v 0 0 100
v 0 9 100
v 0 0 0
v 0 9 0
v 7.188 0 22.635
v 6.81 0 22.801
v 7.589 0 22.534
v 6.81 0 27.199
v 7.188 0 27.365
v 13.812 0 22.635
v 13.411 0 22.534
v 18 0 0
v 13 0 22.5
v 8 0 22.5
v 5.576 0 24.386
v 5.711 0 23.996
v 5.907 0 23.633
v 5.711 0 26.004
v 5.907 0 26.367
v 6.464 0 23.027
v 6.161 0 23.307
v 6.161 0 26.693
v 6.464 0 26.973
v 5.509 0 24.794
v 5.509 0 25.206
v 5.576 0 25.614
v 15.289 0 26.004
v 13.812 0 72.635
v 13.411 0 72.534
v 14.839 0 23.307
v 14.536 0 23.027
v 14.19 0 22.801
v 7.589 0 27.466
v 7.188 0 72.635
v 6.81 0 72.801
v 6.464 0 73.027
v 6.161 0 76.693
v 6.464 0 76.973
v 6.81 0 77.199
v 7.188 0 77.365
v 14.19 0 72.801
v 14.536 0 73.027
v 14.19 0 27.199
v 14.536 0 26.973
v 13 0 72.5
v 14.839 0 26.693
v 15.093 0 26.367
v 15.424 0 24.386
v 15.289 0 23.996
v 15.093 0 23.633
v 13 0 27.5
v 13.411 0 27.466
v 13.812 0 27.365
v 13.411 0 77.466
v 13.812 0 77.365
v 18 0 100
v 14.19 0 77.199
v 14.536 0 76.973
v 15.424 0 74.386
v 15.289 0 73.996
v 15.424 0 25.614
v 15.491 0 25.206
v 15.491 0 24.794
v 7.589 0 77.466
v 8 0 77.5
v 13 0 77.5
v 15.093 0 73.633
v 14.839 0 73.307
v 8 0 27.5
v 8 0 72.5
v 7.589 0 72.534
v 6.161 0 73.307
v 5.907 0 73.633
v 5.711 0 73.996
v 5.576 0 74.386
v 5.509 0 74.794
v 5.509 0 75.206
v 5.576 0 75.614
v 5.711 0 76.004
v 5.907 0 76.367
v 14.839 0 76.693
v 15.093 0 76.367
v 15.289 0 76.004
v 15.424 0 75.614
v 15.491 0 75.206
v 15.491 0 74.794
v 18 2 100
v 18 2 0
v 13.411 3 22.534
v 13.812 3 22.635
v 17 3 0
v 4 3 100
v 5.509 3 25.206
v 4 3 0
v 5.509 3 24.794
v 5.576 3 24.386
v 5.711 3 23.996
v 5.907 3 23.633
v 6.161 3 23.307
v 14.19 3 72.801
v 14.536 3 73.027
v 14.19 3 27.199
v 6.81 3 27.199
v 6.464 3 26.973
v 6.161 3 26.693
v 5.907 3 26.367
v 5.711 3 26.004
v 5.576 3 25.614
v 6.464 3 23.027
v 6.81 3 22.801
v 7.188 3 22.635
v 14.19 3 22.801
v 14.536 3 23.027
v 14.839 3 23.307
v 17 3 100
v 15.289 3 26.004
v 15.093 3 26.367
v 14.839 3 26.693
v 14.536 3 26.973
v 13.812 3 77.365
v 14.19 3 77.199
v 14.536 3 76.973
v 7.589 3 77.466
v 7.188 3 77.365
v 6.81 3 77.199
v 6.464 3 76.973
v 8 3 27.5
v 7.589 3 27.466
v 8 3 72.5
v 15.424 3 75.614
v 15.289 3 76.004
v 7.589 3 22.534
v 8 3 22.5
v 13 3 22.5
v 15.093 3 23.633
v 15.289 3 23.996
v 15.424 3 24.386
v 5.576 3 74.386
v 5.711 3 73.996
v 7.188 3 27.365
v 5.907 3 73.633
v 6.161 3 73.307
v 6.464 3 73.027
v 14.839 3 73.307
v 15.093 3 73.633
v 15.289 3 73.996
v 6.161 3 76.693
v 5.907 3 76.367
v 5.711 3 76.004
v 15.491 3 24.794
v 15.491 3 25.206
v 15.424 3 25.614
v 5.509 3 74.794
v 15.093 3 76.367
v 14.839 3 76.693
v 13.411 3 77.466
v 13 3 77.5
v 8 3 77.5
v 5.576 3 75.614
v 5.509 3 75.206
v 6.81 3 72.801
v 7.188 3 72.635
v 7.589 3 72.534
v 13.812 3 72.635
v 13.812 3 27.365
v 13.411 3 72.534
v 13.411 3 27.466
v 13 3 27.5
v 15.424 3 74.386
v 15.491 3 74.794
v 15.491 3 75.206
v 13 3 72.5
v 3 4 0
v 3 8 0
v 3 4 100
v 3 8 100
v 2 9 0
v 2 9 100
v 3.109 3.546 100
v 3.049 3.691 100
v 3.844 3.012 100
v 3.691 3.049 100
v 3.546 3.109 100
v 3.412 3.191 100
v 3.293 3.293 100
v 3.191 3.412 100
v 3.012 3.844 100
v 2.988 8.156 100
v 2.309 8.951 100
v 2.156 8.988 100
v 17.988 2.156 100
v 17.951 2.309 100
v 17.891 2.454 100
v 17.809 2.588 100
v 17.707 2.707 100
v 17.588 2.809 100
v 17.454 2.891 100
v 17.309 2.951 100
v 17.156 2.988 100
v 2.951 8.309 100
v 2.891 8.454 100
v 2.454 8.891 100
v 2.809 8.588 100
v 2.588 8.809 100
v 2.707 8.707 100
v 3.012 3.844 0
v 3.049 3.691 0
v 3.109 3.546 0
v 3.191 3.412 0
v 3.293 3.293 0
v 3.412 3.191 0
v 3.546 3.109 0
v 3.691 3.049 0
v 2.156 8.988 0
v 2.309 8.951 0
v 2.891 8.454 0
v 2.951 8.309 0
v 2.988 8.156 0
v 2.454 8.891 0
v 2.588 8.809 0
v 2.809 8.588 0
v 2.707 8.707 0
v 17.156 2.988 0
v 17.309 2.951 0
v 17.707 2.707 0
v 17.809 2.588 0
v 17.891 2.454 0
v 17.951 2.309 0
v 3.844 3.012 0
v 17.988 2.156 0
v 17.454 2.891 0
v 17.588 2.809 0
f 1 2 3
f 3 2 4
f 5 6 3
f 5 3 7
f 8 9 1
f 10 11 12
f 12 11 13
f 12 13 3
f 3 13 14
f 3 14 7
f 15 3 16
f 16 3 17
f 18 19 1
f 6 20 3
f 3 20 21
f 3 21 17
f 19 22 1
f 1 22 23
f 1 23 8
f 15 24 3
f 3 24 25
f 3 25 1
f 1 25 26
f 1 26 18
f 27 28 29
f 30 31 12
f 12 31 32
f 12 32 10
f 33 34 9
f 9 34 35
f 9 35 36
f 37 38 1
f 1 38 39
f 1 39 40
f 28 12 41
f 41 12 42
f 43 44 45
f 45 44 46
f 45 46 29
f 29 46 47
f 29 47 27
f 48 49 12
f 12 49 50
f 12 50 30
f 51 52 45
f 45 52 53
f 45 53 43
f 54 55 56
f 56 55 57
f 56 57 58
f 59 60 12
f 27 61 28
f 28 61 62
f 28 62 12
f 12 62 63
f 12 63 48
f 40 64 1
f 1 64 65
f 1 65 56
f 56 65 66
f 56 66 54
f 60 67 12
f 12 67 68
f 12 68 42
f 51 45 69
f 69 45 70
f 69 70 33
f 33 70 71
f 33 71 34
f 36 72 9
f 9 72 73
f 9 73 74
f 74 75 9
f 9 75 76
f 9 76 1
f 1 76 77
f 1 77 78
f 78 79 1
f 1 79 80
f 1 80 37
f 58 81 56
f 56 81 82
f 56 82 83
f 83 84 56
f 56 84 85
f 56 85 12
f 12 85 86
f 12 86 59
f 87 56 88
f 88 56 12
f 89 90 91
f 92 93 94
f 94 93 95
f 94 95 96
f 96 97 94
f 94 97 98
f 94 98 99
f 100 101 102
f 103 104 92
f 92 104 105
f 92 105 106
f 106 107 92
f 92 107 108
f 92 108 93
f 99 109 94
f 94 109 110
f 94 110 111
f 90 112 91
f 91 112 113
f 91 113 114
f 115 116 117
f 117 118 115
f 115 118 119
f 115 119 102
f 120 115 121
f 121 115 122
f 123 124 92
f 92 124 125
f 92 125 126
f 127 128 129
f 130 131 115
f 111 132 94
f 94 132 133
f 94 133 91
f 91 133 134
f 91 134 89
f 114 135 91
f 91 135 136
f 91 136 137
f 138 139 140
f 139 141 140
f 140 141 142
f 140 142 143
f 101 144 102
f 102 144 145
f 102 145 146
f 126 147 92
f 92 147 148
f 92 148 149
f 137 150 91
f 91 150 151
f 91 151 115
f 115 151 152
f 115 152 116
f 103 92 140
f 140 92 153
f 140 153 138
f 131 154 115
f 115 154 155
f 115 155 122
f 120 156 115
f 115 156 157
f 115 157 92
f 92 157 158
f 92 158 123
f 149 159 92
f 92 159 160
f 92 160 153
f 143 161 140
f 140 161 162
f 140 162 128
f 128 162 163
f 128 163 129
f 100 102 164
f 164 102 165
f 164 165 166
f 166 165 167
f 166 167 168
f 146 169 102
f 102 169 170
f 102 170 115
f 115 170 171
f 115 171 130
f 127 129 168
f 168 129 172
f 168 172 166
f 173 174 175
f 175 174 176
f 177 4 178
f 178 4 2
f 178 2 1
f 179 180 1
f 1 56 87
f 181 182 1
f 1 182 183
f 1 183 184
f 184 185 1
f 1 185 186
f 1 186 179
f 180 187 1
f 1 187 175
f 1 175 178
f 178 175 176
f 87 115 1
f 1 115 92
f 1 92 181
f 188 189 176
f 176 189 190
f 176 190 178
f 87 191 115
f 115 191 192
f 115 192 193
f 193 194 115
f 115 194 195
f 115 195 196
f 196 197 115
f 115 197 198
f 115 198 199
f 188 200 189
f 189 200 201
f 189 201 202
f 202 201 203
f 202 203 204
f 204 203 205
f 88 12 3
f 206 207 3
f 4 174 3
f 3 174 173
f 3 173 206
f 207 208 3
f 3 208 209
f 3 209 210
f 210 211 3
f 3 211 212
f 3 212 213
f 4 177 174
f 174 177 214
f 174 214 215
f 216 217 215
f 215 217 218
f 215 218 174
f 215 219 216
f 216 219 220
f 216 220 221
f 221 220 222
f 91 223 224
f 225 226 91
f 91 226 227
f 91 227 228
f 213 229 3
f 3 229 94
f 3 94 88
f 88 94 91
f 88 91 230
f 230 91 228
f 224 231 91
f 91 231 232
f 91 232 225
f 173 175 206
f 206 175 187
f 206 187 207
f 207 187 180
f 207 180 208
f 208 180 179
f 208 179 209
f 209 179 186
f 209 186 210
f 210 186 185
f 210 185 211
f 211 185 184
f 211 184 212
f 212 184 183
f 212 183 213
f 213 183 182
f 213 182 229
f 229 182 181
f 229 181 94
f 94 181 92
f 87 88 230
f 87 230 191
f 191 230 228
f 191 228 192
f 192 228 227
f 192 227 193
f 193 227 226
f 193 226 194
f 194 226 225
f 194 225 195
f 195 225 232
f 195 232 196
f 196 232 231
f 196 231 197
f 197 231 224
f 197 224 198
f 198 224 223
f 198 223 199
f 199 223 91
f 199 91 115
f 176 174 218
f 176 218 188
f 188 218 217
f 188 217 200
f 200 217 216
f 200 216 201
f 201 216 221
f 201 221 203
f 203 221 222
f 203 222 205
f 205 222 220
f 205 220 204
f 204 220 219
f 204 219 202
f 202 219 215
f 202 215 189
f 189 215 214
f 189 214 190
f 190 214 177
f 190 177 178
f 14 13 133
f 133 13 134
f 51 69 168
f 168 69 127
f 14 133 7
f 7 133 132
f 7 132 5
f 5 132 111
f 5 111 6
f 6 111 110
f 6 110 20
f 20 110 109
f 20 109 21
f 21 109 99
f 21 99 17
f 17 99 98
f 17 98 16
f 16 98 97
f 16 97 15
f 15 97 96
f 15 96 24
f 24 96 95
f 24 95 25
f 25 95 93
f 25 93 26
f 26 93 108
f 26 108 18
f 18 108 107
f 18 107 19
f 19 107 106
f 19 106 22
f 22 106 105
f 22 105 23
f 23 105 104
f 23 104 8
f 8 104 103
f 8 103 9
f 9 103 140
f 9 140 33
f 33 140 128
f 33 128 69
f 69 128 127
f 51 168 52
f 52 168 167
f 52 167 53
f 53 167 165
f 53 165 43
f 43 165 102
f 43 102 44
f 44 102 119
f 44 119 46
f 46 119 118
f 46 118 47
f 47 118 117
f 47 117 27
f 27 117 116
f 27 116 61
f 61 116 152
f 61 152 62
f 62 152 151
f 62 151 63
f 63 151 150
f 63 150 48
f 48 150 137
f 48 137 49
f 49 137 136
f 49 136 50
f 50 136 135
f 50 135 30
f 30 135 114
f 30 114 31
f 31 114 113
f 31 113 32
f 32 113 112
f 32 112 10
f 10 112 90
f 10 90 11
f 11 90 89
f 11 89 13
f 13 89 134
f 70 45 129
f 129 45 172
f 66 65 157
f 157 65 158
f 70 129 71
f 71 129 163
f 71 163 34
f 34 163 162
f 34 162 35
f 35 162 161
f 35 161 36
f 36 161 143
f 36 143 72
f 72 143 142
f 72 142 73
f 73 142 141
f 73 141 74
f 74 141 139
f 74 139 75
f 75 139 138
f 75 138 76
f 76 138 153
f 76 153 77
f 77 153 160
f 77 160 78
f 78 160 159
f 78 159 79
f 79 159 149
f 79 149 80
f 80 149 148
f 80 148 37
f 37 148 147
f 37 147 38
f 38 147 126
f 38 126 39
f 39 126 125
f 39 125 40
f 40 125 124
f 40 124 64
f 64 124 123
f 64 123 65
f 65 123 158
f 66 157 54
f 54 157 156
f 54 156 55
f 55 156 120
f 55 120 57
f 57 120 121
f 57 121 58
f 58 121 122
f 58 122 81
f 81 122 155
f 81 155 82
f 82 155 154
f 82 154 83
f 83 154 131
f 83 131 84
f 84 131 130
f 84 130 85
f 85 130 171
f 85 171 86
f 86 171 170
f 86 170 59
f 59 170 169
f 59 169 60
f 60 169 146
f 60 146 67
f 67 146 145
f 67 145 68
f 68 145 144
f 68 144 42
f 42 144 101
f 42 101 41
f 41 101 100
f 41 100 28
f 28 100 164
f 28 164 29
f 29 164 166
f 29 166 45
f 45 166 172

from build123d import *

# Parameters (mm, degrees)
BOSS_EXTRUDE1_DEPTH = 100
FILLET1_R           = 1
SKETCH2_R           = 2.5
CUT_EXTRUDE1_DEPTH  = 102.7840852
CUT_EXTRUDE2_DEPTH  = 102.7840852


with BuildPart() as part:
    # Sketch1 → Boss-Extrude1 (new body)
    with BuildSketch(Plane.XY):
        Polygon((0, 0), (18, 0), (18, 3), (3, 3), (3, 9), (0, 9), align=None)
    extrude(amount=BOSS_EXTRUDE1_DEPTH)

    # Fillet1
    fillet1_edges = [part.edges().sort_by_distance(p)[0] for p in [
        (3, 9, 50),
        (3, 3, 50),
        (18, 3, 50),
    ]]
    fillet(fillet1_edges, radius=FILLET1_R)

    # Sketch2 → Cut-Extrude1 (cut, through all)
    with BuildSketch(Plane(origin=(0, 3, 0), x_dir=(1, 0, 0), z_dir=(0, 1, 0))):
        with Locations(Location((10.5, -25, 0), (0, 0, 180))):
            Circle(SKETCH2_R)
        with Locations(Location((10.5, -75, 0), (0, 0, 180))):
            Circle(SKETCH2_R)
    extrude(amount=-CUT_EXTRUDE1_DEPTH, mode=Mode.SUBTRACT)

    # Sketch3 → Cut-Extrude2 (cut, through all)
    with BuildSketch(Plane(origin=(0, 3, 0), x_dir=(1, 0, 0), z_dir=(0, 1, 0))):
        with BuildLine():
            Line((8, -72.5), (13, -72.5))
            ThreePointArc((13, -72.5), (15.5, -75), (13, -77.5))
            Line((13, -77.5), (8, -77.5))
            ThreePointArc((8, -77.5), (5.5, -75), (8, -72.5))
        make_face()
        with BuildLine():
            Line((8, -27.5), (13, -27.5))
            ThreePointArc((13, -27.5), (15.5, -25), (13, -22.5))
            Line((13, -22.5), (8, -22.5))
            ThreePointArc((8, -22.5), (5.5, -25), (8, -27.5))
        make_face()
    extrude(amount=-CUT_EXTRUDE2_DEPTH, mode=Mode.SUBTRACT)


solid = part.part
